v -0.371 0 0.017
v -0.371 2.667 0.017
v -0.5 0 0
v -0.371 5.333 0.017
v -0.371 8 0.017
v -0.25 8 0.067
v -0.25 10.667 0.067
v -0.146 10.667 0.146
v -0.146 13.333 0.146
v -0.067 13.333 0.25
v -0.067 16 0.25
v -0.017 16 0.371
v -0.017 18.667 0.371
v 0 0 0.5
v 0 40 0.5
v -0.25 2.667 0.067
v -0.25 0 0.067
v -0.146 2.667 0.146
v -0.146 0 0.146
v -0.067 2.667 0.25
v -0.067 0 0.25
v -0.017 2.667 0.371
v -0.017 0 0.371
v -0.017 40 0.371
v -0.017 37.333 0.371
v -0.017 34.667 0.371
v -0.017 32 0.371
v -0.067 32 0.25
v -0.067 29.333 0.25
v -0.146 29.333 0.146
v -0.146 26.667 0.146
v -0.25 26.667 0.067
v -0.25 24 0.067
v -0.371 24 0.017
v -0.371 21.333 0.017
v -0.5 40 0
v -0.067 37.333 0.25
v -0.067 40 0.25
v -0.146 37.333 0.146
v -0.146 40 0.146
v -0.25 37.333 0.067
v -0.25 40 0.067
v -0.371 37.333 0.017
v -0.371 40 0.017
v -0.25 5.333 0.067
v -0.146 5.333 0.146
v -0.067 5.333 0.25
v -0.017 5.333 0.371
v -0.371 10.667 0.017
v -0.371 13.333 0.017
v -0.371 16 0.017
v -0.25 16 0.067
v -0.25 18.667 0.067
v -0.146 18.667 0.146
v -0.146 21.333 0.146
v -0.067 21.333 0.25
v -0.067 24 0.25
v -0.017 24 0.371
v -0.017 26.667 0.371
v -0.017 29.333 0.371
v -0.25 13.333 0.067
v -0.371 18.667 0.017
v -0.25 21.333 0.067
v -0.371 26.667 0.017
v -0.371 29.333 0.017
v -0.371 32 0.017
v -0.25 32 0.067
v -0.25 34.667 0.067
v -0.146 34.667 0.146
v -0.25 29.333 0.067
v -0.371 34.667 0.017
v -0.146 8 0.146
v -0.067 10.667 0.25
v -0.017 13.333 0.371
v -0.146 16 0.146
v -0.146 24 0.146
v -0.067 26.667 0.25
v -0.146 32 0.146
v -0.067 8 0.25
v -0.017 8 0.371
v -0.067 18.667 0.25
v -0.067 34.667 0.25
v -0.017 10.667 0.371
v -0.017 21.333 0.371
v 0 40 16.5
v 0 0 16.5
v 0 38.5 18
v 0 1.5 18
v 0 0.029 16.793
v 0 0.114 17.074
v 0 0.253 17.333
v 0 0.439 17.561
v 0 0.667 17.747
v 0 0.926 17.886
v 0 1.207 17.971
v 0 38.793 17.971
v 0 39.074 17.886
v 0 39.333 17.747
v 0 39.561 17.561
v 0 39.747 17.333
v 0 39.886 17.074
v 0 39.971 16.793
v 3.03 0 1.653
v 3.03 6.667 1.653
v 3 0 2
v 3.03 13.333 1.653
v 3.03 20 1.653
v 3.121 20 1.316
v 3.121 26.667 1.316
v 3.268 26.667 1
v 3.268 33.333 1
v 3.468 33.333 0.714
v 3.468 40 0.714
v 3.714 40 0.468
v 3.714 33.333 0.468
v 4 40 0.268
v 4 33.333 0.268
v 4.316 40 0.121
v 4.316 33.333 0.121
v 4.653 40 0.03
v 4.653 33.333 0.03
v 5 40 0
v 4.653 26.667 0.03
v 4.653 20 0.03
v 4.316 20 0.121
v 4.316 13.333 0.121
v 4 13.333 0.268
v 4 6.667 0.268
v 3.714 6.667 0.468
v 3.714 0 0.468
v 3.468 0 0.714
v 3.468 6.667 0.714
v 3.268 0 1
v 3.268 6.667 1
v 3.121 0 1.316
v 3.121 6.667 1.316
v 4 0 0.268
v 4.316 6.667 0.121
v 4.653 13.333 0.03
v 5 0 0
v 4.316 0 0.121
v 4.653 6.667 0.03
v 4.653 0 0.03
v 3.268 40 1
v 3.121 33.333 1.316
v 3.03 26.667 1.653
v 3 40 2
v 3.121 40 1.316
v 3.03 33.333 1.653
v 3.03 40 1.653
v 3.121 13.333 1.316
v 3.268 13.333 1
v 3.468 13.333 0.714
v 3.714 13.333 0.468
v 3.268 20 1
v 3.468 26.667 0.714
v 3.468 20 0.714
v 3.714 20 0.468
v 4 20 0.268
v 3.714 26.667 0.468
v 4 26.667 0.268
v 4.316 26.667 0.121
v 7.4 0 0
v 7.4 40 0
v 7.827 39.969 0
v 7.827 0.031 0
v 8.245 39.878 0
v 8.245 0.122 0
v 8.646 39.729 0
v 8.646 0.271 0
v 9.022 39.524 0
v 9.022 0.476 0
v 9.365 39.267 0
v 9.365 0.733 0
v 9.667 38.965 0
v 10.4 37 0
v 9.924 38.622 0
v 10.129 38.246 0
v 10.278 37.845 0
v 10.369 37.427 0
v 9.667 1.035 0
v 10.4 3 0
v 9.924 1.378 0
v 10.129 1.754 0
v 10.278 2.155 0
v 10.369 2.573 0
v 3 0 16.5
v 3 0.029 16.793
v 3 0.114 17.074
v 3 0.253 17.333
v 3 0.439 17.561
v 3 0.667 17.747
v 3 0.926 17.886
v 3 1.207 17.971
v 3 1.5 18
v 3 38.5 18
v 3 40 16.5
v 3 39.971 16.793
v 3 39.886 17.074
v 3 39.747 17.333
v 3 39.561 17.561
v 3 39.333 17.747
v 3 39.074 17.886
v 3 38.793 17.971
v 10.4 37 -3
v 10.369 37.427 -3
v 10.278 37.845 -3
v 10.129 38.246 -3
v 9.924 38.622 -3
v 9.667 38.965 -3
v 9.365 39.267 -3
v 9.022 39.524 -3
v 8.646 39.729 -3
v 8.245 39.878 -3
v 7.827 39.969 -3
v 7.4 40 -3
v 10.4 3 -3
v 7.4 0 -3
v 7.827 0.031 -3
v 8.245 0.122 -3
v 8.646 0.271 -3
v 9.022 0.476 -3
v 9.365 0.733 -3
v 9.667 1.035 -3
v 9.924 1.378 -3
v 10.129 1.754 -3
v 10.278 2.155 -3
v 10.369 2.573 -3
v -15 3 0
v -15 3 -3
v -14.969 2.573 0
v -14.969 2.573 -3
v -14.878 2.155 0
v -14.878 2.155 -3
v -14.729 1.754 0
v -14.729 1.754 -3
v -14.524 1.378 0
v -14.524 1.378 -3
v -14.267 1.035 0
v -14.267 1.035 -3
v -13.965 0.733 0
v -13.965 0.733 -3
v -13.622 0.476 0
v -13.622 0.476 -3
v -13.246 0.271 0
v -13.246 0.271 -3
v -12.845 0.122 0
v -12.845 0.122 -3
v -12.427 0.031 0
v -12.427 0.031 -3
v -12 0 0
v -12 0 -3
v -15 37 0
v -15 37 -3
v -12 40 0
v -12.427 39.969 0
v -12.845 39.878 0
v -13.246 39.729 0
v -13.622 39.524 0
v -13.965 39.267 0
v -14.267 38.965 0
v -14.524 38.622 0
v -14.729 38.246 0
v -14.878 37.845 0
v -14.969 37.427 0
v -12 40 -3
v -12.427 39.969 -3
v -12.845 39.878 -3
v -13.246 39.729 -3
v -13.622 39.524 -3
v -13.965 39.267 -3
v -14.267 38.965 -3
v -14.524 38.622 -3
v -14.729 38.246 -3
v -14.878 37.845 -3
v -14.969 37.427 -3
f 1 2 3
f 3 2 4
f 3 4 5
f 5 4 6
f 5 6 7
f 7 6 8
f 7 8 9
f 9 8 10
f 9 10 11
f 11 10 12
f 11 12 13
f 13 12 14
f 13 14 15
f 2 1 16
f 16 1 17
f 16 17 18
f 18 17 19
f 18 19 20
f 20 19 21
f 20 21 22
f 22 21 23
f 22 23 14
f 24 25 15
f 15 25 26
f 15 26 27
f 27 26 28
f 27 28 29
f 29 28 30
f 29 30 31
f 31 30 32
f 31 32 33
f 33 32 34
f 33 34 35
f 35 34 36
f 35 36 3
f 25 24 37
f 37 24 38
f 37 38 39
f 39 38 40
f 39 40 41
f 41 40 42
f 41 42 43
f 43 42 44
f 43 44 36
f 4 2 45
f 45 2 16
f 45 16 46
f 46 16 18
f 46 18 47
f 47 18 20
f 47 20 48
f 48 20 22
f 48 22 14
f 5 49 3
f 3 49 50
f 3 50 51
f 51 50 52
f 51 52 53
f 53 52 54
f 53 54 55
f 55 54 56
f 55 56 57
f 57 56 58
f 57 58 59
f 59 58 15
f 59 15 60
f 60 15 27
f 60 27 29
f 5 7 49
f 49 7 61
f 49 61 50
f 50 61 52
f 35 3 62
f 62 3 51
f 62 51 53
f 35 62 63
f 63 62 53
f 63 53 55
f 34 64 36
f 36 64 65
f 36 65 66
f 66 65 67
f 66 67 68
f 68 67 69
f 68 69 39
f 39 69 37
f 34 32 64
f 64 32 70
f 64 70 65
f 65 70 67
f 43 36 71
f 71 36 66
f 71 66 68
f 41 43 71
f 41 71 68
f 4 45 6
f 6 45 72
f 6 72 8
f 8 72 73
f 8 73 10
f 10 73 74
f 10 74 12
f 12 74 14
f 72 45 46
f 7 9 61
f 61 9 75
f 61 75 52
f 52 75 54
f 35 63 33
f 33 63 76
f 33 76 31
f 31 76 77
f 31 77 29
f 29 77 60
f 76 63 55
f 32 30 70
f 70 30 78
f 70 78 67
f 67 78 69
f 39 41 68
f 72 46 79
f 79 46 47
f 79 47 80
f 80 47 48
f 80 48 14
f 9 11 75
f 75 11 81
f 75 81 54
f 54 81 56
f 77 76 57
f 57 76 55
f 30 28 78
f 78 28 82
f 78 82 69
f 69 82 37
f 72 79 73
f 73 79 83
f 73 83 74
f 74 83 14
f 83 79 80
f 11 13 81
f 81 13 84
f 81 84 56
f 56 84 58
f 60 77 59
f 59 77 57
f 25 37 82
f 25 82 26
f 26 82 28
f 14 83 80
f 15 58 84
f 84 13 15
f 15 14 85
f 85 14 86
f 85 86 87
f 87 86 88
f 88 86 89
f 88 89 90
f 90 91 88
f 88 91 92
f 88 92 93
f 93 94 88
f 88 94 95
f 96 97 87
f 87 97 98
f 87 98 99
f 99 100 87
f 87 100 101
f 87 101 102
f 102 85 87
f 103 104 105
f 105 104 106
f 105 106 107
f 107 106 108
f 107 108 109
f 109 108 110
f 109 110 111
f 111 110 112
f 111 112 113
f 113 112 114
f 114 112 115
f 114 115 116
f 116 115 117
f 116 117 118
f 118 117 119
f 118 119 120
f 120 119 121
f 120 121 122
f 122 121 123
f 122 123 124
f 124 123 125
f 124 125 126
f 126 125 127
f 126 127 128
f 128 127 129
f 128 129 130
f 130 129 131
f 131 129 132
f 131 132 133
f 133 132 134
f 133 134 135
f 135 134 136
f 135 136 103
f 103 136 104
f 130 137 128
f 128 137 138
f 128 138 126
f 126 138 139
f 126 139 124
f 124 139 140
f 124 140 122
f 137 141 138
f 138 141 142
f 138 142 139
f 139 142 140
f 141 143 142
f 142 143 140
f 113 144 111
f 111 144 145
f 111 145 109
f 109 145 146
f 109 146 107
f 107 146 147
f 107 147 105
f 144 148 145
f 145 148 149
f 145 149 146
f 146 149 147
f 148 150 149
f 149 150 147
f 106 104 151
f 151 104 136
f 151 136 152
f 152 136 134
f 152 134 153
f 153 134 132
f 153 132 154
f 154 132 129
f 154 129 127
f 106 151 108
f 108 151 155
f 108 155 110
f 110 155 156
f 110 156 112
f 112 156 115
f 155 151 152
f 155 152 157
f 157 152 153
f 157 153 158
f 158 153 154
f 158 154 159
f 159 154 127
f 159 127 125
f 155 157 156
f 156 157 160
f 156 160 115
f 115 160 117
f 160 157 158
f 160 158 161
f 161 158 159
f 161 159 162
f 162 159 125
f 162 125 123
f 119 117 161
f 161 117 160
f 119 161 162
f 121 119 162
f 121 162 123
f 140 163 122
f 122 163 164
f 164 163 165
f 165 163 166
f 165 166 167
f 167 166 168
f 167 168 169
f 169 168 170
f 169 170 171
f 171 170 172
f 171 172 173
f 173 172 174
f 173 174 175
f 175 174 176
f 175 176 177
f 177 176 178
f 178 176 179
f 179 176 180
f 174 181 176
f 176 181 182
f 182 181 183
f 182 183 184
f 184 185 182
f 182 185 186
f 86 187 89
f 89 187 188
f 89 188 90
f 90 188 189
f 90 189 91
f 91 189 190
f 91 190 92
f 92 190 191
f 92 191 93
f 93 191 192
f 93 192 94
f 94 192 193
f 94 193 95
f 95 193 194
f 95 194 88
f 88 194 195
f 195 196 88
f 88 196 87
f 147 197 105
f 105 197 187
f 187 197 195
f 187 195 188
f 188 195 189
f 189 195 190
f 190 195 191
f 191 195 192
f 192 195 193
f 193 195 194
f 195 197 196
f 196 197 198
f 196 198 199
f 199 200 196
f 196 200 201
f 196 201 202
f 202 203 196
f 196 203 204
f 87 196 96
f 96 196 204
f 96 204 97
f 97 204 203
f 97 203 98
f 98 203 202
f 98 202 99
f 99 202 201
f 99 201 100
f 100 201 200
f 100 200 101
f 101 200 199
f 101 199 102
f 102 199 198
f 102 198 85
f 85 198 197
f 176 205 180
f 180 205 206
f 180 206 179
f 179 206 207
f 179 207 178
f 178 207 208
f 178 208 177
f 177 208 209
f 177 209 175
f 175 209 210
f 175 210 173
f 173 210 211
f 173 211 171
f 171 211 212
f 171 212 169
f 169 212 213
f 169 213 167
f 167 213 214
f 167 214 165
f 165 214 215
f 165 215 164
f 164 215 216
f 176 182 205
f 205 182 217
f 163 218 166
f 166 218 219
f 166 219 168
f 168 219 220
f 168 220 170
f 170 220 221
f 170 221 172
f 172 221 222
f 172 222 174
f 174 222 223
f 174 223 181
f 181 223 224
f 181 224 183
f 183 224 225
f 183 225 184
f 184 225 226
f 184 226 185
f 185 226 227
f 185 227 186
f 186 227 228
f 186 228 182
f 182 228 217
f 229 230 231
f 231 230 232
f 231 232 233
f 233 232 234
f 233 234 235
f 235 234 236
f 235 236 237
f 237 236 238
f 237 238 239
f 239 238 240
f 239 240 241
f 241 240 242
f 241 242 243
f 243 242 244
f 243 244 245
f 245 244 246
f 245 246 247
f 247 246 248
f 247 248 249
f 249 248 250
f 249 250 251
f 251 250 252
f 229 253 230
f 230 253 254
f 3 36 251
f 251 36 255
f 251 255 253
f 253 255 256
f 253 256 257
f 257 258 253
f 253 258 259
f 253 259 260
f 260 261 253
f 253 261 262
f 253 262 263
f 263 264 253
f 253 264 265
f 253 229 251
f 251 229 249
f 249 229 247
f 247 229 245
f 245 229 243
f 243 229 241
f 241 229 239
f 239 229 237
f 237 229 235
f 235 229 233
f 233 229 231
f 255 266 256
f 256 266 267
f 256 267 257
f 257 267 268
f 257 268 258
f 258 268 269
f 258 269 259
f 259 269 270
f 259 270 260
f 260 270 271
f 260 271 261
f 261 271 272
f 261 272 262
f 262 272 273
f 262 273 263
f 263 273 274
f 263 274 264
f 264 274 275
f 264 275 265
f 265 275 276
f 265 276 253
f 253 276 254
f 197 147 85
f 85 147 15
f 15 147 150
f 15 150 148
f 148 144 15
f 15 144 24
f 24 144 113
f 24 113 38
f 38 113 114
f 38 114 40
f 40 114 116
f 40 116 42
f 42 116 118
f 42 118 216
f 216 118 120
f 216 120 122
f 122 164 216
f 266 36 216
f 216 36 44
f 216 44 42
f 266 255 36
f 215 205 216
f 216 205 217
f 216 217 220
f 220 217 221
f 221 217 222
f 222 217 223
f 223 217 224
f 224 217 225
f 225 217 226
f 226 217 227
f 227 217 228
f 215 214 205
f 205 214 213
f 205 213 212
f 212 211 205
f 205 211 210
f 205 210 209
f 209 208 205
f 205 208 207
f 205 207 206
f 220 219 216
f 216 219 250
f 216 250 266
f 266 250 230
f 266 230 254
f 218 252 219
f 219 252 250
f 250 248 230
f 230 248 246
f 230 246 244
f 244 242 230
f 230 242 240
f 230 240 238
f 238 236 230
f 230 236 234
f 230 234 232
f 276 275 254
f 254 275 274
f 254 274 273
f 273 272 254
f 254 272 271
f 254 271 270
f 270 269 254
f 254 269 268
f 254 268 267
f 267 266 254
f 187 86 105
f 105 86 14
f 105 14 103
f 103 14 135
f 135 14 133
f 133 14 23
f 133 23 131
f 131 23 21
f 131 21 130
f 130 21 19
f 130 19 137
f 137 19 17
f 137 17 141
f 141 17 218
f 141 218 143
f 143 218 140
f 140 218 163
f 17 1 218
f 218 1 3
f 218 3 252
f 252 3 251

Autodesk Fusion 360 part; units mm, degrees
sketch "Sketch1" plane through (0, 0, 0) normal (1, 0, 0) x (0, 1, 0)
  line L0 (0, 0) -> (40, 0)
  line L1 (40, 0) -> (40, 18)
  line L2 (40, 18) -> (0, 18)
  line L3 (0, 18) -> (0, 0)
  dimension "d1" = 40
  dimension "d2" = 18
extrude "Extrude1" add sketch "Sketch1" along normal blind 3
sketch "Sketch3" plane through (0, 0, 0) normal (0, 0, -1) x (1, 0, 0)
  line L0 (0, 0) -> (0, -40)
  line L1 (0, -40) -> (3, -40)
  line L2 (3, -40) -> (3, 0)
  line L3 (3, 0) -> (0, 0)
  line L4 (1.5, 0) -> (1.5, -40) construction
  line L5 (-15, -40) -> (10.4, -40)
  line L6 (10.4, -40) -> (10.4, 0)
  line L7 (10.4, 0) -> (-15, 0)
  line L8 (-15, 0) -> (-15, -40)
  dimension "d11" = 25.4
  dimension "d12" = 15
extrude "Extrude3" add sketch "Sketch3" along normal blind 3
fillet "Fillet1" radius 3 4 edges at (-15, 40, -1.5) (-15, 0, -1.5) (10.4, 0, -1.5) (10.4, 40, -1.5)
fillet "Fillet2" radius 1.5 2 edges at (1.5, 40, 18) (1.5, 0, 18)
fillet "Fillet3" radius 2 1 edges at (3, 20, 0)
fillet "Fillet4" radius 0.5 1 edges at (0, 20, 0)
